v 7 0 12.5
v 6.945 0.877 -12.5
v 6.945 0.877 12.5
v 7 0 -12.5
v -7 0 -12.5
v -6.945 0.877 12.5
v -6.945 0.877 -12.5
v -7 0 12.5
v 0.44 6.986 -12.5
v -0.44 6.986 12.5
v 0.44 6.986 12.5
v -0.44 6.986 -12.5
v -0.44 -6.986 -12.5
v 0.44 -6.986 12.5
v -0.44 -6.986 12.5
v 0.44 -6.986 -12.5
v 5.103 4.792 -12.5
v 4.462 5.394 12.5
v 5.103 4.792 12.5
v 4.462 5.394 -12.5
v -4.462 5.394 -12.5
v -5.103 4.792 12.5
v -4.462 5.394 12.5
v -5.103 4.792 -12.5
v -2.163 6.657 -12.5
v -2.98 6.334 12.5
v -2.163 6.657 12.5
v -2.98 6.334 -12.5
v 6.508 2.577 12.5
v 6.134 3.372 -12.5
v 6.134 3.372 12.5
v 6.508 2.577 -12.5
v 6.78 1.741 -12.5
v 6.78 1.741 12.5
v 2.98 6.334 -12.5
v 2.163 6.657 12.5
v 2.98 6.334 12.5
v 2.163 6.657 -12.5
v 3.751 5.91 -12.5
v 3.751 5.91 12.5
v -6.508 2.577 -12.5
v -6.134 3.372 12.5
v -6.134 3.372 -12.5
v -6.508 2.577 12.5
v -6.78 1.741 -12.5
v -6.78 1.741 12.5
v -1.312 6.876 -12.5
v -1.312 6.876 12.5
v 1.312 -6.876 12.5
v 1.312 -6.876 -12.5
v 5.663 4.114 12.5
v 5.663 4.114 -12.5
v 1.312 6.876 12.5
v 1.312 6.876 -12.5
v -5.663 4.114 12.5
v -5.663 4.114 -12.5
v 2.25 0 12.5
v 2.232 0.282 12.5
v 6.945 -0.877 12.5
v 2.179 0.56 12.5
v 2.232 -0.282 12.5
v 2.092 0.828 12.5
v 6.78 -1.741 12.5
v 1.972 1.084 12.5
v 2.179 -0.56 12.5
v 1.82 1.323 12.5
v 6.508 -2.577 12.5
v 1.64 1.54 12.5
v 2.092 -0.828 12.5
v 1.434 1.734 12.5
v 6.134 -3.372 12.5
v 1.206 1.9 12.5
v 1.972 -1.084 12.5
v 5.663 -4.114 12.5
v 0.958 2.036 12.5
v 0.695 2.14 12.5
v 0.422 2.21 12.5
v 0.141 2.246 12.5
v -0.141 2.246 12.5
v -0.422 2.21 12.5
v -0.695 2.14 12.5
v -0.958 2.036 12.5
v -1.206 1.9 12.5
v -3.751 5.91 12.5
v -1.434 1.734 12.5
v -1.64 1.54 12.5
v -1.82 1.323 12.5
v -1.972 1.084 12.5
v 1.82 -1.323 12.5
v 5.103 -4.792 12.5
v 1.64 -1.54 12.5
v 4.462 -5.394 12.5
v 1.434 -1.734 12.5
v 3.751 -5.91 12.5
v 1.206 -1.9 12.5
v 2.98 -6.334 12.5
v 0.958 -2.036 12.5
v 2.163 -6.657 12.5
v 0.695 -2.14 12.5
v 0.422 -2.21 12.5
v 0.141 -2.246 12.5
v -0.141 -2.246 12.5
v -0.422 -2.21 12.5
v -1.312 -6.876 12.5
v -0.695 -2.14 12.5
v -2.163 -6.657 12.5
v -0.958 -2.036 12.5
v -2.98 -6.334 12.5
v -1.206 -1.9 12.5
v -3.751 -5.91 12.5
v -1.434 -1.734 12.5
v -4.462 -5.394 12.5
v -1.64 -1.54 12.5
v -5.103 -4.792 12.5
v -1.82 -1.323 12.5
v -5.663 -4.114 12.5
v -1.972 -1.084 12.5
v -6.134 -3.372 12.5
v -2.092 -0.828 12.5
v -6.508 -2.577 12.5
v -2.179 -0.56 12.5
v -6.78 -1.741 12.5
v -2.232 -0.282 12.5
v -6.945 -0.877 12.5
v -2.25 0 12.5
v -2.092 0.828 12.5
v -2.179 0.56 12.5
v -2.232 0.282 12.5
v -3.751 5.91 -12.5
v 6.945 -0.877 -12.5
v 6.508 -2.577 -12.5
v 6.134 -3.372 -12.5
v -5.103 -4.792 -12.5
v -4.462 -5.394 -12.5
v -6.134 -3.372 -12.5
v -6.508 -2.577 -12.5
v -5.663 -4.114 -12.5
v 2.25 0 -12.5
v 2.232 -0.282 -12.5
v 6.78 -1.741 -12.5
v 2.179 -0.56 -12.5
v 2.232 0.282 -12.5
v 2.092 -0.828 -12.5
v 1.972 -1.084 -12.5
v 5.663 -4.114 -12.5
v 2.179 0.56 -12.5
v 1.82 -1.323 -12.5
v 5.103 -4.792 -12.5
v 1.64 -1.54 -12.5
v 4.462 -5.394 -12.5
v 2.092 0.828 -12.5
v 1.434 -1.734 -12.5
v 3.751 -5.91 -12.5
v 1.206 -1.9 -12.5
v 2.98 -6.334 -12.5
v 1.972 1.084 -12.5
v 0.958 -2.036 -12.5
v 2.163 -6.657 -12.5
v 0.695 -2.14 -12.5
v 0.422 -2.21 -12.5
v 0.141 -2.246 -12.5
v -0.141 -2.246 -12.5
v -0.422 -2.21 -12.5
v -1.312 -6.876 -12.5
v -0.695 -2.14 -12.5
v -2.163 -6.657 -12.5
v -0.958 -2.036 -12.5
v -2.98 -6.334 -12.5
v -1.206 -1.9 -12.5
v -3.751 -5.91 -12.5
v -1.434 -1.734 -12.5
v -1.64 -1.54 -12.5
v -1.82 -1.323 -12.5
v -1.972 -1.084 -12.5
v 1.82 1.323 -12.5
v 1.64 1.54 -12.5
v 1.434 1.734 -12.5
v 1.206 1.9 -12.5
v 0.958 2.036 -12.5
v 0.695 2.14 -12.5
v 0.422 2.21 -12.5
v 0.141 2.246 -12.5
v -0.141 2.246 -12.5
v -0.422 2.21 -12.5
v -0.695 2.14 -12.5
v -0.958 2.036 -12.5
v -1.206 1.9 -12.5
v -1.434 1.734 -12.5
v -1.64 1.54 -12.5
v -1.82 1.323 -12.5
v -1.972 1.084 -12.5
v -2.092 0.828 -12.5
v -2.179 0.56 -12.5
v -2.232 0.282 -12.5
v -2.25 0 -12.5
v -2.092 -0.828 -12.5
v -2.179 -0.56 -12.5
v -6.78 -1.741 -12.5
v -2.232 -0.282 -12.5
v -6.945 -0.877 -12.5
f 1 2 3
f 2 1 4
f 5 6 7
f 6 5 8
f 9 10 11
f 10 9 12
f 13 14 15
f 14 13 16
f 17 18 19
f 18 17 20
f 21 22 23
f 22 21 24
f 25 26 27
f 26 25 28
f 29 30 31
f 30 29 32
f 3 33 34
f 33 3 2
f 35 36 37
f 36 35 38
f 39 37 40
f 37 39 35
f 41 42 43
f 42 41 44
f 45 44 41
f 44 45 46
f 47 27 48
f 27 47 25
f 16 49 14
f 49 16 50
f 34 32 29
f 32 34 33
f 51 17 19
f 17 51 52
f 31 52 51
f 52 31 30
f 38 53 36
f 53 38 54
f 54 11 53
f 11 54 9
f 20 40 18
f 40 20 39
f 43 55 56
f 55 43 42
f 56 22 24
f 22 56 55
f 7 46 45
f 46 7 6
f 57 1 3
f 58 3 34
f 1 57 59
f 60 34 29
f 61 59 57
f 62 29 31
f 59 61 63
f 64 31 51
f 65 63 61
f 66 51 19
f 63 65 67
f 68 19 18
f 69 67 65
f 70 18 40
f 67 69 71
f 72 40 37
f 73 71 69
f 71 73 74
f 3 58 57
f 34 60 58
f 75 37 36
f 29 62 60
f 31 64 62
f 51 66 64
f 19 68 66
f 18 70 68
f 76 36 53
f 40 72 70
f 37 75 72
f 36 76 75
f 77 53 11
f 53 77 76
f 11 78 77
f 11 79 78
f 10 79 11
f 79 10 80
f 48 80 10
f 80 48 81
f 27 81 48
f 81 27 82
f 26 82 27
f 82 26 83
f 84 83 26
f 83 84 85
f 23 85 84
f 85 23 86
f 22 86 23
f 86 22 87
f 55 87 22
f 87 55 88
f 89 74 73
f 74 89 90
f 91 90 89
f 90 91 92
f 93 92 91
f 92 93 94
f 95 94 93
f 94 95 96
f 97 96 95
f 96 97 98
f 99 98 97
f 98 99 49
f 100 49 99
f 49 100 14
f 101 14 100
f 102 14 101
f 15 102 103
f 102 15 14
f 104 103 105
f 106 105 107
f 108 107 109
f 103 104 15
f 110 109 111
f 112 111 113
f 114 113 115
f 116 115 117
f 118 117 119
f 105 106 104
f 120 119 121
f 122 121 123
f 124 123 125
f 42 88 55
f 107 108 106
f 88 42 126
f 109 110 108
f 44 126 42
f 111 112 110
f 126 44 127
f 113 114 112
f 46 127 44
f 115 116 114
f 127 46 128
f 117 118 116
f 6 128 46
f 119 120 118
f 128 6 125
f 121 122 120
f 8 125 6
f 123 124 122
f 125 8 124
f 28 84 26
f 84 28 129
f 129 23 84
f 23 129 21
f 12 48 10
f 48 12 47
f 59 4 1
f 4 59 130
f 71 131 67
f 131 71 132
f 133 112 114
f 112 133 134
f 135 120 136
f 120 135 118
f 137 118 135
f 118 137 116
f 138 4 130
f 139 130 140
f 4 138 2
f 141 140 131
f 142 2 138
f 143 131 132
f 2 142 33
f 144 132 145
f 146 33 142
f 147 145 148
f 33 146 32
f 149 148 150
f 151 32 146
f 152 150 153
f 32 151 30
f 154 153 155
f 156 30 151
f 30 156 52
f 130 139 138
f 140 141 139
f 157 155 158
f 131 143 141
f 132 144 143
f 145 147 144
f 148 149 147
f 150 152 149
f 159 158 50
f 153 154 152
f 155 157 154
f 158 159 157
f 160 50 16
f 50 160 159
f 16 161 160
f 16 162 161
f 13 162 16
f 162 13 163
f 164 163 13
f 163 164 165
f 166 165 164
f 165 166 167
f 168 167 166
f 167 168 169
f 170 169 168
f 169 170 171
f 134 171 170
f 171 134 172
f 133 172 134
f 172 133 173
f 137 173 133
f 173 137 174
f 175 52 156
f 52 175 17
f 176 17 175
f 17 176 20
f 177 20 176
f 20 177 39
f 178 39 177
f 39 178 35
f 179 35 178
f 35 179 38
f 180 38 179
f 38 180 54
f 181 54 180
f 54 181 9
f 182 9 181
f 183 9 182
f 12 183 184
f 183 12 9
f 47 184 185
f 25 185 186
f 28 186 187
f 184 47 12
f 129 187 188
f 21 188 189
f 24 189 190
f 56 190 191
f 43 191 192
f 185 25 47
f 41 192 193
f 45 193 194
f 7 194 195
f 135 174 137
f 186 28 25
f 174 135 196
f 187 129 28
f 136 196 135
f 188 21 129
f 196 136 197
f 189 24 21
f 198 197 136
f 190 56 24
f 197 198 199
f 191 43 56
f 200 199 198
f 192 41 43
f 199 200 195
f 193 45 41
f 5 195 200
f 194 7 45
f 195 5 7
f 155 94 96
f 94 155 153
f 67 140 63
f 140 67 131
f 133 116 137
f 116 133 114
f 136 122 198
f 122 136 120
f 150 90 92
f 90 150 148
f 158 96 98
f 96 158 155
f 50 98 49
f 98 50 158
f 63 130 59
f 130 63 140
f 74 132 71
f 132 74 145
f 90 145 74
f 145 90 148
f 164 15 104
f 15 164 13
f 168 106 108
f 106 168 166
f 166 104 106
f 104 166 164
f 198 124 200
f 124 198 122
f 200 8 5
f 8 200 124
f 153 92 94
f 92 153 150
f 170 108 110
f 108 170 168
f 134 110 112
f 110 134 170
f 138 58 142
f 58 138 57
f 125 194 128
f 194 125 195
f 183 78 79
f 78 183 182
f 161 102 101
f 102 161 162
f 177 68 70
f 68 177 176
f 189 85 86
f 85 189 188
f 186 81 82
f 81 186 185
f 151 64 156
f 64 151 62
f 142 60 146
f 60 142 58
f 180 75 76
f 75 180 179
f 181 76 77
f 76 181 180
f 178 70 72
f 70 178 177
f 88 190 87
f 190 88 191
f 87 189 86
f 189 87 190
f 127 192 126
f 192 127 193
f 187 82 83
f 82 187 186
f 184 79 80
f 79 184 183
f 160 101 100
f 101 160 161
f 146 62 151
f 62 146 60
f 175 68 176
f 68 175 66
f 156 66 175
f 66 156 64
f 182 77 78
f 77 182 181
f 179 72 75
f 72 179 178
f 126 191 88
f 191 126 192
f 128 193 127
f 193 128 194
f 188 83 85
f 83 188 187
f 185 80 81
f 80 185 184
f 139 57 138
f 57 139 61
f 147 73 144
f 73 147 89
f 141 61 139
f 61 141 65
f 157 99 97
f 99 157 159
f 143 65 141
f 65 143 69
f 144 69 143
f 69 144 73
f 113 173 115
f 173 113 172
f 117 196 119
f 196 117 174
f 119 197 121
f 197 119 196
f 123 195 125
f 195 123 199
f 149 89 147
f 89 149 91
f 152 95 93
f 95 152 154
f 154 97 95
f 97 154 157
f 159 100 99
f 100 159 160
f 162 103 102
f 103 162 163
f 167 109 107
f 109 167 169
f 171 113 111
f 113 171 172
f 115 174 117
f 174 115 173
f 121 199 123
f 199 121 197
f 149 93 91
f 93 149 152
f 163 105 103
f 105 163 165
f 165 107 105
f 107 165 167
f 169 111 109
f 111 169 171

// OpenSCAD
$fn = 50;


difference() {
	union() {
		translate(v = [0, 0, -12.5000000000]) {
			cylinder(h = 25, r = 7.0000000000);
		}
	}
	union() {
		translate(v = [0, 0, -100.0000000000]) {
			cylinder(h = 200, r = 2.2500000000);
		}
	}
}
